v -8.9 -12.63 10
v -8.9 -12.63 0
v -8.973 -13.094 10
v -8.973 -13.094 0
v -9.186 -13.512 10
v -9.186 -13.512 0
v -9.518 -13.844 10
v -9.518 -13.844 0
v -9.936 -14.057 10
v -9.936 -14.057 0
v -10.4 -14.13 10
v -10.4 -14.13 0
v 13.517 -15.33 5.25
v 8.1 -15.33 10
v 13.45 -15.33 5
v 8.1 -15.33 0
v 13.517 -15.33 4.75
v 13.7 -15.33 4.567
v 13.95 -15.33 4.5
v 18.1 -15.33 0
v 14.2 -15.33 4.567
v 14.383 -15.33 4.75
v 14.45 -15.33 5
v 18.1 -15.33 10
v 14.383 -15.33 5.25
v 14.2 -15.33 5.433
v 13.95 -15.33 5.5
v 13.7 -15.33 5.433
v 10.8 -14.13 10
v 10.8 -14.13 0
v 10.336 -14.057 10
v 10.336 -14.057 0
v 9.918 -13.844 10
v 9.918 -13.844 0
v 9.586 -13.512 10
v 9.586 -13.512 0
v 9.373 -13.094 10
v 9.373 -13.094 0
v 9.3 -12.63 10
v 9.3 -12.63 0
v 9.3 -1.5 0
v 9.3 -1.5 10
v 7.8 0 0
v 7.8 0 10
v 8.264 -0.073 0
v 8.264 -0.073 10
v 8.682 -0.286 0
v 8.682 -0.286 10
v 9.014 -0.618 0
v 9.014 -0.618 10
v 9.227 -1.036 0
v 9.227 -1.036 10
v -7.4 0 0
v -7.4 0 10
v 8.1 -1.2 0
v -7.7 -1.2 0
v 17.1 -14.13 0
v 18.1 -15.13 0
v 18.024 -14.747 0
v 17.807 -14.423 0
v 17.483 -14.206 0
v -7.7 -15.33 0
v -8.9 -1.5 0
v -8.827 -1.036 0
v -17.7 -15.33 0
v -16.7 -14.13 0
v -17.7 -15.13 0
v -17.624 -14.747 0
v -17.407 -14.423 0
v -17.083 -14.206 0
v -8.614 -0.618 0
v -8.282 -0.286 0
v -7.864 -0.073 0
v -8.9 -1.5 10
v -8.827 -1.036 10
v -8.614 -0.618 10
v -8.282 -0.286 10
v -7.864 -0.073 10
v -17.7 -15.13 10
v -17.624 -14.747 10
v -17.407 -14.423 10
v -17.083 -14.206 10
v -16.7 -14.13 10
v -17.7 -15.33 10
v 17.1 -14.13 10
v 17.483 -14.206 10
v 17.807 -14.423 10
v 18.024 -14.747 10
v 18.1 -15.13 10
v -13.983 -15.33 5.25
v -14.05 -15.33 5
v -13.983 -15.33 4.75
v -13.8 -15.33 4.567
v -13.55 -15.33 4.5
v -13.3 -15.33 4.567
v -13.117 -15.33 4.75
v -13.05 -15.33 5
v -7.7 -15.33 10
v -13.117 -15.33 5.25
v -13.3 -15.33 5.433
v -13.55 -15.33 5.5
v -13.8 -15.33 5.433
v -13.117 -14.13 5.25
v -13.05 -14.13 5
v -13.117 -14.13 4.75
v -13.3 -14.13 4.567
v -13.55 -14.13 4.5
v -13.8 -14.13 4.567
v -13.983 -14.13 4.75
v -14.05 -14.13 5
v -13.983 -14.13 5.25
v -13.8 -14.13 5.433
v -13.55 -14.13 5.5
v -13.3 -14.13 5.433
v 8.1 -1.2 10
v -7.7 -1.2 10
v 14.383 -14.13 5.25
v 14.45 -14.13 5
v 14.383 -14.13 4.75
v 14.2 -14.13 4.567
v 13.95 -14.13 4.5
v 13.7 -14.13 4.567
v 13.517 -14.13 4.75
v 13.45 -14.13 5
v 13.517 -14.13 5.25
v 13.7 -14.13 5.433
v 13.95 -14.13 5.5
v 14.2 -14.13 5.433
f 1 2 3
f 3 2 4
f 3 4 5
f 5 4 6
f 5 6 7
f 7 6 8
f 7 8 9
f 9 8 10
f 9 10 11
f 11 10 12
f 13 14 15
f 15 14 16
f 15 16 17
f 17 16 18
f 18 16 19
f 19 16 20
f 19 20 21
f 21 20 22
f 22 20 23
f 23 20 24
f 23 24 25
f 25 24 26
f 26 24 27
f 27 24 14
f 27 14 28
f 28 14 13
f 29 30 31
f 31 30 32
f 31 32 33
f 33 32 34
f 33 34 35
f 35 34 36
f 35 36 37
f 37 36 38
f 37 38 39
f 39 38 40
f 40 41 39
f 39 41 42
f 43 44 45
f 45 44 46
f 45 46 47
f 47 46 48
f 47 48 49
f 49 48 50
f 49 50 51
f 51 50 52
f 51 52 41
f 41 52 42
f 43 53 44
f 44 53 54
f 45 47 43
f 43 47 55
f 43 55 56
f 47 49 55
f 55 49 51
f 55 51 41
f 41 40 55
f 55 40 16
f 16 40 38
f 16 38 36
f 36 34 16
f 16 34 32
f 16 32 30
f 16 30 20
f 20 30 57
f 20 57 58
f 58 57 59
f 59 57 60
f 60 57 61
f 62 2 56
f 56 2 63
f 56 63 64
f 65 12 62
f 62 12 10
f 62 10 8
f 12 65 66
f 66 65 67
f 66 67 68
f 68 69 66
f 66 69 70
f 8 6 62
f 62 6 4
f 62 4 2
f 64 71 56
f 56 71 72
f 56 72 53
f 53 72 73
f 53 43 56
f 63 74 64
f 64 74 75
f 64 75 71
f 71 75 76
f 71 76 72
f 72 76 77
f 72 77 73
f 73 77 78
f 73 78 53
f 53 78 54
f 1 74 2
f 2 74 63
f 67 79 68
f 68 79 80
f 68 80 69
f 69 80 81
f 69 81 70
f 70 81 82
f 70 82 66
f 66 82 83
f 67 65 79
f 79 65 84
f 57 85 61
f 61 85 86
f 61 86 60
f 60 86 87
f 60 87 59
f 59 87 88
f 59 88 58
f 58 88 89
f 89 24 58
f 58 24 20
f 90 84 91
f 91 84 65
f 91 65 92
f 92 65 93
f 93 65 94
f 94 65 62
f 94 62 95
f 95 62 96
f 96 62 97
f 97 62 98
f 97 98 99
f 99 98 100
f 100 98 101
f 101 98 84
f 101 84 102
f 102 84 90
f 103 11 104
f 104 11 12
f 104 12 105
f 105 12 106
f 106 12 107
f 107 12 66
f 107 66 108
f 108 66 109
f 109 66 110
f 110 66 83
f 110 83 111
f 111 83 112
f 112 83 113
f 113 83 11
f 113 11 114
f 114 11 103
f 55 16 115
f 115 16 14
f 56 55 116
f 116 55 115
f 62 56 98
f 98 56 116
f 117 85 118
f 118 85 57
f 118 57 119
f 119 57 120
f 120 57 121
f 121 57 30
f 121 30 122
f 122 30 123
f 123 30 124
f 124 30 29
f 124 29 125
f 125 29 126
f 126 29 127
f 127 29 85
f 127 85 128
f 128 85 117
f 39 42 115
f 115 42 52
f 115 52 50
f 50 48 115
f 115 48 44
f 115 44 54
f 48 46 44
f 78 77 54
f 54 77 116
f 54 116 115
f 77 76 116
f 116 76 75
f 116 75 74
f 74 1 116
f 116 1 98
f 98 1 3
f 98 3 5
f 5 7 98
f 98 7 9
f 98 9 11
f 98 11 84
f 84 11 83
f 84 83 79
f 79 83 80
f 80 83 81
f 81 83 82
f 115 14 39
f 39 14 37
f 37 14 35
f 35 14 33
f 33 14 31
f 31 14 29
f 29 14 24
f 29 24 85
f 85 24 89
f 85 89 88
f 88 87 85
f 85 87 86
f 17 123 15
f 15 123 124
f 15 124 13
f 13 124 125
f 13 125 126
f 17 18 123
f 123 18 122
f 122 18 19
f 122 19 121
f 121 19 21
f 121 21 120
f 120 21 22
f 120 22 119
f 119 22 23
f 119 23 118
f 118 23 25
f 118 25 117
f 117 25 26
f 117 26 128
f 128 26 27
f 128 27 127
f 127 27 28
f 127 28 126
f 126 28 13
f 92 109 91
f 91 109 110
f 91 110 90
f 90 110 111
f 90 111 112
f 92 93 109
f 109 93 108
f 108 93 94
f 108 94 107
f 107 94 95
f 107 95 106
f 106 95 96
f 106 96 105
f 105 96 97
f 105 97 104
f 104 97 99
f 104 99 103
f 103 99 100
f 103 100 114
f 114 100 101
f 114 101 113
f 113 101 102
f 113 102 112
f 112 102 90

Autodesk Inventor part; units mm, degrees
ref_plane "YZ Plane" through (0, 0, 0) normal (1, 0, 0) x (0, 1, 0)
ref_plane "XZ Plane" through (0, 0, 0) normal (0, 1, 0) x (-1, 0, 0)
ref_plane "XY Plane" through (0, 0, 0) normal (0, 0, 1) x (1, 0, 0)
sketch "Sketch1" plane through (0, 0, 0) normal (0, 0, 1) x (1, 0, 0)
  line L0 (-8.9, 0) -> (9.3, 0)
  line L1 (9.3, 0) -> (9.3, -14.13)
  line L2 (-8.9, -14.13) -> (-8.9, 0)
  line L3 (-7.7, -1.2) -> (8.1, -1.2)
  line L4 (8.1, -1.2) -> (8.1, -15.33)
  line L5 (-7.7, -15.33) -> (-7.7, -1.2)
  line L6 (-8.9, -14.13) -> (-17.7, -14.13)
  line L7 (-17.7, -14.13) -> (-17.7, -15.33)
  line L8 (-17.7, -15.33) -> (-7.7, -15.33)
  line L9 (9.3, -14.13) -> (18.1, -14.13)
  line L10 (18.1, -14.13) -> (18.1, -15.33)
  line L11 (18.1, -15.33) -> (8.1, -15.33)
  point P0 (0, 0)
  dimension "d0" = 1.2
  dimension "d1" = 1.2
  dimension "d2" = 1.2
  dimension "d3" = 15.8
  dimension "d4" = 14.13
  dimension "d5" = 10
  dimension "d6" = 10
  dimension "d7" = 1.2
  dimension "d8" = 1.2
extrude "Extrusion1" add sketch "Sketch1" along normal blind 10
sketch "Sketch2" plane through (-17.7, -14.13, 0) normal (0, 1, 0) x (1, 0, 0)
  line L0 (8.8, 0) -> (0, 0) projected
  line L1 (0, 0) -> (0, -10) projected
  line L2 (8.8, -10) -> (0, -10) projected
  line L3 (8.8, 0) -> (8.8, -10) projected
  point P0 (17.7, 0)
fillet "Fillet1" radius 1 2 edges at (18.1, -14.13, 5) (-17.7, -14.13, 5)
fillet "Fillet2" radius 1.5 4 edges at (-8.9, 0, 5) (9.3, 0, 5) (9.3, -14.13, 5) (-8.9, -14.13, 5)
sketch "Sketch3" plane through (-16.7, -14.13, 10) normal (0, 1, 0) x (1, 0, 0)
  circle A0 centre (3.15, 5) radius 0.5
  line L0 (33.8, 0) -> (27.5, 0) projected
  line L1 (27.5, 0) -> (27.5, 10) projected
  line L2 (33.8, 10) -> (27.5, 10) projected
  line L3 (33.8, 10) -> (33.8, 0) projected
  line L4 (27.5, 0) -> (27.5, 10) projected
  line L5 (33.8, 0) -> (27.5, 0) projected
  line L6 (33.8, 10) -> (33.8, 0) projected
  line L7 (33.8, 10) -> (27.5, 10) projected
  line L8 (34.8, 0) -> (33.8, 0) projected
  line L9 (33.8, 10) -> (34.8, 10) projected
  line L10 (34.8, 0) -> (34.8, 10) projected
  line L11 (33.8, 0) -> (34.8, 0) projected
  line L12 (34.8, 0) -> (34.8, 10) projected
  line L13 (34.8, 10) -> (33.8, 10) projected
  line L14 (33.8, 10) -> (33.8, 0) projected
  line L15 (34.8, 10) -> (34.8, 0) projected
  line L16 (34.8, 0) -> (34.8, 10) projected
  line L17 (34.8, 10) -> (34.8, 0) projected
  circle A1 centre (30.65, 5) radius 0.5
  point P0 (16.7, 10)
  dimension "d16" = 1
  dimension "d17" = 1
extrude "Extrusion2" cut sketch "Sketch3" against normal through all contours A0 | A1
properties part number "Batterijbevestiging"
